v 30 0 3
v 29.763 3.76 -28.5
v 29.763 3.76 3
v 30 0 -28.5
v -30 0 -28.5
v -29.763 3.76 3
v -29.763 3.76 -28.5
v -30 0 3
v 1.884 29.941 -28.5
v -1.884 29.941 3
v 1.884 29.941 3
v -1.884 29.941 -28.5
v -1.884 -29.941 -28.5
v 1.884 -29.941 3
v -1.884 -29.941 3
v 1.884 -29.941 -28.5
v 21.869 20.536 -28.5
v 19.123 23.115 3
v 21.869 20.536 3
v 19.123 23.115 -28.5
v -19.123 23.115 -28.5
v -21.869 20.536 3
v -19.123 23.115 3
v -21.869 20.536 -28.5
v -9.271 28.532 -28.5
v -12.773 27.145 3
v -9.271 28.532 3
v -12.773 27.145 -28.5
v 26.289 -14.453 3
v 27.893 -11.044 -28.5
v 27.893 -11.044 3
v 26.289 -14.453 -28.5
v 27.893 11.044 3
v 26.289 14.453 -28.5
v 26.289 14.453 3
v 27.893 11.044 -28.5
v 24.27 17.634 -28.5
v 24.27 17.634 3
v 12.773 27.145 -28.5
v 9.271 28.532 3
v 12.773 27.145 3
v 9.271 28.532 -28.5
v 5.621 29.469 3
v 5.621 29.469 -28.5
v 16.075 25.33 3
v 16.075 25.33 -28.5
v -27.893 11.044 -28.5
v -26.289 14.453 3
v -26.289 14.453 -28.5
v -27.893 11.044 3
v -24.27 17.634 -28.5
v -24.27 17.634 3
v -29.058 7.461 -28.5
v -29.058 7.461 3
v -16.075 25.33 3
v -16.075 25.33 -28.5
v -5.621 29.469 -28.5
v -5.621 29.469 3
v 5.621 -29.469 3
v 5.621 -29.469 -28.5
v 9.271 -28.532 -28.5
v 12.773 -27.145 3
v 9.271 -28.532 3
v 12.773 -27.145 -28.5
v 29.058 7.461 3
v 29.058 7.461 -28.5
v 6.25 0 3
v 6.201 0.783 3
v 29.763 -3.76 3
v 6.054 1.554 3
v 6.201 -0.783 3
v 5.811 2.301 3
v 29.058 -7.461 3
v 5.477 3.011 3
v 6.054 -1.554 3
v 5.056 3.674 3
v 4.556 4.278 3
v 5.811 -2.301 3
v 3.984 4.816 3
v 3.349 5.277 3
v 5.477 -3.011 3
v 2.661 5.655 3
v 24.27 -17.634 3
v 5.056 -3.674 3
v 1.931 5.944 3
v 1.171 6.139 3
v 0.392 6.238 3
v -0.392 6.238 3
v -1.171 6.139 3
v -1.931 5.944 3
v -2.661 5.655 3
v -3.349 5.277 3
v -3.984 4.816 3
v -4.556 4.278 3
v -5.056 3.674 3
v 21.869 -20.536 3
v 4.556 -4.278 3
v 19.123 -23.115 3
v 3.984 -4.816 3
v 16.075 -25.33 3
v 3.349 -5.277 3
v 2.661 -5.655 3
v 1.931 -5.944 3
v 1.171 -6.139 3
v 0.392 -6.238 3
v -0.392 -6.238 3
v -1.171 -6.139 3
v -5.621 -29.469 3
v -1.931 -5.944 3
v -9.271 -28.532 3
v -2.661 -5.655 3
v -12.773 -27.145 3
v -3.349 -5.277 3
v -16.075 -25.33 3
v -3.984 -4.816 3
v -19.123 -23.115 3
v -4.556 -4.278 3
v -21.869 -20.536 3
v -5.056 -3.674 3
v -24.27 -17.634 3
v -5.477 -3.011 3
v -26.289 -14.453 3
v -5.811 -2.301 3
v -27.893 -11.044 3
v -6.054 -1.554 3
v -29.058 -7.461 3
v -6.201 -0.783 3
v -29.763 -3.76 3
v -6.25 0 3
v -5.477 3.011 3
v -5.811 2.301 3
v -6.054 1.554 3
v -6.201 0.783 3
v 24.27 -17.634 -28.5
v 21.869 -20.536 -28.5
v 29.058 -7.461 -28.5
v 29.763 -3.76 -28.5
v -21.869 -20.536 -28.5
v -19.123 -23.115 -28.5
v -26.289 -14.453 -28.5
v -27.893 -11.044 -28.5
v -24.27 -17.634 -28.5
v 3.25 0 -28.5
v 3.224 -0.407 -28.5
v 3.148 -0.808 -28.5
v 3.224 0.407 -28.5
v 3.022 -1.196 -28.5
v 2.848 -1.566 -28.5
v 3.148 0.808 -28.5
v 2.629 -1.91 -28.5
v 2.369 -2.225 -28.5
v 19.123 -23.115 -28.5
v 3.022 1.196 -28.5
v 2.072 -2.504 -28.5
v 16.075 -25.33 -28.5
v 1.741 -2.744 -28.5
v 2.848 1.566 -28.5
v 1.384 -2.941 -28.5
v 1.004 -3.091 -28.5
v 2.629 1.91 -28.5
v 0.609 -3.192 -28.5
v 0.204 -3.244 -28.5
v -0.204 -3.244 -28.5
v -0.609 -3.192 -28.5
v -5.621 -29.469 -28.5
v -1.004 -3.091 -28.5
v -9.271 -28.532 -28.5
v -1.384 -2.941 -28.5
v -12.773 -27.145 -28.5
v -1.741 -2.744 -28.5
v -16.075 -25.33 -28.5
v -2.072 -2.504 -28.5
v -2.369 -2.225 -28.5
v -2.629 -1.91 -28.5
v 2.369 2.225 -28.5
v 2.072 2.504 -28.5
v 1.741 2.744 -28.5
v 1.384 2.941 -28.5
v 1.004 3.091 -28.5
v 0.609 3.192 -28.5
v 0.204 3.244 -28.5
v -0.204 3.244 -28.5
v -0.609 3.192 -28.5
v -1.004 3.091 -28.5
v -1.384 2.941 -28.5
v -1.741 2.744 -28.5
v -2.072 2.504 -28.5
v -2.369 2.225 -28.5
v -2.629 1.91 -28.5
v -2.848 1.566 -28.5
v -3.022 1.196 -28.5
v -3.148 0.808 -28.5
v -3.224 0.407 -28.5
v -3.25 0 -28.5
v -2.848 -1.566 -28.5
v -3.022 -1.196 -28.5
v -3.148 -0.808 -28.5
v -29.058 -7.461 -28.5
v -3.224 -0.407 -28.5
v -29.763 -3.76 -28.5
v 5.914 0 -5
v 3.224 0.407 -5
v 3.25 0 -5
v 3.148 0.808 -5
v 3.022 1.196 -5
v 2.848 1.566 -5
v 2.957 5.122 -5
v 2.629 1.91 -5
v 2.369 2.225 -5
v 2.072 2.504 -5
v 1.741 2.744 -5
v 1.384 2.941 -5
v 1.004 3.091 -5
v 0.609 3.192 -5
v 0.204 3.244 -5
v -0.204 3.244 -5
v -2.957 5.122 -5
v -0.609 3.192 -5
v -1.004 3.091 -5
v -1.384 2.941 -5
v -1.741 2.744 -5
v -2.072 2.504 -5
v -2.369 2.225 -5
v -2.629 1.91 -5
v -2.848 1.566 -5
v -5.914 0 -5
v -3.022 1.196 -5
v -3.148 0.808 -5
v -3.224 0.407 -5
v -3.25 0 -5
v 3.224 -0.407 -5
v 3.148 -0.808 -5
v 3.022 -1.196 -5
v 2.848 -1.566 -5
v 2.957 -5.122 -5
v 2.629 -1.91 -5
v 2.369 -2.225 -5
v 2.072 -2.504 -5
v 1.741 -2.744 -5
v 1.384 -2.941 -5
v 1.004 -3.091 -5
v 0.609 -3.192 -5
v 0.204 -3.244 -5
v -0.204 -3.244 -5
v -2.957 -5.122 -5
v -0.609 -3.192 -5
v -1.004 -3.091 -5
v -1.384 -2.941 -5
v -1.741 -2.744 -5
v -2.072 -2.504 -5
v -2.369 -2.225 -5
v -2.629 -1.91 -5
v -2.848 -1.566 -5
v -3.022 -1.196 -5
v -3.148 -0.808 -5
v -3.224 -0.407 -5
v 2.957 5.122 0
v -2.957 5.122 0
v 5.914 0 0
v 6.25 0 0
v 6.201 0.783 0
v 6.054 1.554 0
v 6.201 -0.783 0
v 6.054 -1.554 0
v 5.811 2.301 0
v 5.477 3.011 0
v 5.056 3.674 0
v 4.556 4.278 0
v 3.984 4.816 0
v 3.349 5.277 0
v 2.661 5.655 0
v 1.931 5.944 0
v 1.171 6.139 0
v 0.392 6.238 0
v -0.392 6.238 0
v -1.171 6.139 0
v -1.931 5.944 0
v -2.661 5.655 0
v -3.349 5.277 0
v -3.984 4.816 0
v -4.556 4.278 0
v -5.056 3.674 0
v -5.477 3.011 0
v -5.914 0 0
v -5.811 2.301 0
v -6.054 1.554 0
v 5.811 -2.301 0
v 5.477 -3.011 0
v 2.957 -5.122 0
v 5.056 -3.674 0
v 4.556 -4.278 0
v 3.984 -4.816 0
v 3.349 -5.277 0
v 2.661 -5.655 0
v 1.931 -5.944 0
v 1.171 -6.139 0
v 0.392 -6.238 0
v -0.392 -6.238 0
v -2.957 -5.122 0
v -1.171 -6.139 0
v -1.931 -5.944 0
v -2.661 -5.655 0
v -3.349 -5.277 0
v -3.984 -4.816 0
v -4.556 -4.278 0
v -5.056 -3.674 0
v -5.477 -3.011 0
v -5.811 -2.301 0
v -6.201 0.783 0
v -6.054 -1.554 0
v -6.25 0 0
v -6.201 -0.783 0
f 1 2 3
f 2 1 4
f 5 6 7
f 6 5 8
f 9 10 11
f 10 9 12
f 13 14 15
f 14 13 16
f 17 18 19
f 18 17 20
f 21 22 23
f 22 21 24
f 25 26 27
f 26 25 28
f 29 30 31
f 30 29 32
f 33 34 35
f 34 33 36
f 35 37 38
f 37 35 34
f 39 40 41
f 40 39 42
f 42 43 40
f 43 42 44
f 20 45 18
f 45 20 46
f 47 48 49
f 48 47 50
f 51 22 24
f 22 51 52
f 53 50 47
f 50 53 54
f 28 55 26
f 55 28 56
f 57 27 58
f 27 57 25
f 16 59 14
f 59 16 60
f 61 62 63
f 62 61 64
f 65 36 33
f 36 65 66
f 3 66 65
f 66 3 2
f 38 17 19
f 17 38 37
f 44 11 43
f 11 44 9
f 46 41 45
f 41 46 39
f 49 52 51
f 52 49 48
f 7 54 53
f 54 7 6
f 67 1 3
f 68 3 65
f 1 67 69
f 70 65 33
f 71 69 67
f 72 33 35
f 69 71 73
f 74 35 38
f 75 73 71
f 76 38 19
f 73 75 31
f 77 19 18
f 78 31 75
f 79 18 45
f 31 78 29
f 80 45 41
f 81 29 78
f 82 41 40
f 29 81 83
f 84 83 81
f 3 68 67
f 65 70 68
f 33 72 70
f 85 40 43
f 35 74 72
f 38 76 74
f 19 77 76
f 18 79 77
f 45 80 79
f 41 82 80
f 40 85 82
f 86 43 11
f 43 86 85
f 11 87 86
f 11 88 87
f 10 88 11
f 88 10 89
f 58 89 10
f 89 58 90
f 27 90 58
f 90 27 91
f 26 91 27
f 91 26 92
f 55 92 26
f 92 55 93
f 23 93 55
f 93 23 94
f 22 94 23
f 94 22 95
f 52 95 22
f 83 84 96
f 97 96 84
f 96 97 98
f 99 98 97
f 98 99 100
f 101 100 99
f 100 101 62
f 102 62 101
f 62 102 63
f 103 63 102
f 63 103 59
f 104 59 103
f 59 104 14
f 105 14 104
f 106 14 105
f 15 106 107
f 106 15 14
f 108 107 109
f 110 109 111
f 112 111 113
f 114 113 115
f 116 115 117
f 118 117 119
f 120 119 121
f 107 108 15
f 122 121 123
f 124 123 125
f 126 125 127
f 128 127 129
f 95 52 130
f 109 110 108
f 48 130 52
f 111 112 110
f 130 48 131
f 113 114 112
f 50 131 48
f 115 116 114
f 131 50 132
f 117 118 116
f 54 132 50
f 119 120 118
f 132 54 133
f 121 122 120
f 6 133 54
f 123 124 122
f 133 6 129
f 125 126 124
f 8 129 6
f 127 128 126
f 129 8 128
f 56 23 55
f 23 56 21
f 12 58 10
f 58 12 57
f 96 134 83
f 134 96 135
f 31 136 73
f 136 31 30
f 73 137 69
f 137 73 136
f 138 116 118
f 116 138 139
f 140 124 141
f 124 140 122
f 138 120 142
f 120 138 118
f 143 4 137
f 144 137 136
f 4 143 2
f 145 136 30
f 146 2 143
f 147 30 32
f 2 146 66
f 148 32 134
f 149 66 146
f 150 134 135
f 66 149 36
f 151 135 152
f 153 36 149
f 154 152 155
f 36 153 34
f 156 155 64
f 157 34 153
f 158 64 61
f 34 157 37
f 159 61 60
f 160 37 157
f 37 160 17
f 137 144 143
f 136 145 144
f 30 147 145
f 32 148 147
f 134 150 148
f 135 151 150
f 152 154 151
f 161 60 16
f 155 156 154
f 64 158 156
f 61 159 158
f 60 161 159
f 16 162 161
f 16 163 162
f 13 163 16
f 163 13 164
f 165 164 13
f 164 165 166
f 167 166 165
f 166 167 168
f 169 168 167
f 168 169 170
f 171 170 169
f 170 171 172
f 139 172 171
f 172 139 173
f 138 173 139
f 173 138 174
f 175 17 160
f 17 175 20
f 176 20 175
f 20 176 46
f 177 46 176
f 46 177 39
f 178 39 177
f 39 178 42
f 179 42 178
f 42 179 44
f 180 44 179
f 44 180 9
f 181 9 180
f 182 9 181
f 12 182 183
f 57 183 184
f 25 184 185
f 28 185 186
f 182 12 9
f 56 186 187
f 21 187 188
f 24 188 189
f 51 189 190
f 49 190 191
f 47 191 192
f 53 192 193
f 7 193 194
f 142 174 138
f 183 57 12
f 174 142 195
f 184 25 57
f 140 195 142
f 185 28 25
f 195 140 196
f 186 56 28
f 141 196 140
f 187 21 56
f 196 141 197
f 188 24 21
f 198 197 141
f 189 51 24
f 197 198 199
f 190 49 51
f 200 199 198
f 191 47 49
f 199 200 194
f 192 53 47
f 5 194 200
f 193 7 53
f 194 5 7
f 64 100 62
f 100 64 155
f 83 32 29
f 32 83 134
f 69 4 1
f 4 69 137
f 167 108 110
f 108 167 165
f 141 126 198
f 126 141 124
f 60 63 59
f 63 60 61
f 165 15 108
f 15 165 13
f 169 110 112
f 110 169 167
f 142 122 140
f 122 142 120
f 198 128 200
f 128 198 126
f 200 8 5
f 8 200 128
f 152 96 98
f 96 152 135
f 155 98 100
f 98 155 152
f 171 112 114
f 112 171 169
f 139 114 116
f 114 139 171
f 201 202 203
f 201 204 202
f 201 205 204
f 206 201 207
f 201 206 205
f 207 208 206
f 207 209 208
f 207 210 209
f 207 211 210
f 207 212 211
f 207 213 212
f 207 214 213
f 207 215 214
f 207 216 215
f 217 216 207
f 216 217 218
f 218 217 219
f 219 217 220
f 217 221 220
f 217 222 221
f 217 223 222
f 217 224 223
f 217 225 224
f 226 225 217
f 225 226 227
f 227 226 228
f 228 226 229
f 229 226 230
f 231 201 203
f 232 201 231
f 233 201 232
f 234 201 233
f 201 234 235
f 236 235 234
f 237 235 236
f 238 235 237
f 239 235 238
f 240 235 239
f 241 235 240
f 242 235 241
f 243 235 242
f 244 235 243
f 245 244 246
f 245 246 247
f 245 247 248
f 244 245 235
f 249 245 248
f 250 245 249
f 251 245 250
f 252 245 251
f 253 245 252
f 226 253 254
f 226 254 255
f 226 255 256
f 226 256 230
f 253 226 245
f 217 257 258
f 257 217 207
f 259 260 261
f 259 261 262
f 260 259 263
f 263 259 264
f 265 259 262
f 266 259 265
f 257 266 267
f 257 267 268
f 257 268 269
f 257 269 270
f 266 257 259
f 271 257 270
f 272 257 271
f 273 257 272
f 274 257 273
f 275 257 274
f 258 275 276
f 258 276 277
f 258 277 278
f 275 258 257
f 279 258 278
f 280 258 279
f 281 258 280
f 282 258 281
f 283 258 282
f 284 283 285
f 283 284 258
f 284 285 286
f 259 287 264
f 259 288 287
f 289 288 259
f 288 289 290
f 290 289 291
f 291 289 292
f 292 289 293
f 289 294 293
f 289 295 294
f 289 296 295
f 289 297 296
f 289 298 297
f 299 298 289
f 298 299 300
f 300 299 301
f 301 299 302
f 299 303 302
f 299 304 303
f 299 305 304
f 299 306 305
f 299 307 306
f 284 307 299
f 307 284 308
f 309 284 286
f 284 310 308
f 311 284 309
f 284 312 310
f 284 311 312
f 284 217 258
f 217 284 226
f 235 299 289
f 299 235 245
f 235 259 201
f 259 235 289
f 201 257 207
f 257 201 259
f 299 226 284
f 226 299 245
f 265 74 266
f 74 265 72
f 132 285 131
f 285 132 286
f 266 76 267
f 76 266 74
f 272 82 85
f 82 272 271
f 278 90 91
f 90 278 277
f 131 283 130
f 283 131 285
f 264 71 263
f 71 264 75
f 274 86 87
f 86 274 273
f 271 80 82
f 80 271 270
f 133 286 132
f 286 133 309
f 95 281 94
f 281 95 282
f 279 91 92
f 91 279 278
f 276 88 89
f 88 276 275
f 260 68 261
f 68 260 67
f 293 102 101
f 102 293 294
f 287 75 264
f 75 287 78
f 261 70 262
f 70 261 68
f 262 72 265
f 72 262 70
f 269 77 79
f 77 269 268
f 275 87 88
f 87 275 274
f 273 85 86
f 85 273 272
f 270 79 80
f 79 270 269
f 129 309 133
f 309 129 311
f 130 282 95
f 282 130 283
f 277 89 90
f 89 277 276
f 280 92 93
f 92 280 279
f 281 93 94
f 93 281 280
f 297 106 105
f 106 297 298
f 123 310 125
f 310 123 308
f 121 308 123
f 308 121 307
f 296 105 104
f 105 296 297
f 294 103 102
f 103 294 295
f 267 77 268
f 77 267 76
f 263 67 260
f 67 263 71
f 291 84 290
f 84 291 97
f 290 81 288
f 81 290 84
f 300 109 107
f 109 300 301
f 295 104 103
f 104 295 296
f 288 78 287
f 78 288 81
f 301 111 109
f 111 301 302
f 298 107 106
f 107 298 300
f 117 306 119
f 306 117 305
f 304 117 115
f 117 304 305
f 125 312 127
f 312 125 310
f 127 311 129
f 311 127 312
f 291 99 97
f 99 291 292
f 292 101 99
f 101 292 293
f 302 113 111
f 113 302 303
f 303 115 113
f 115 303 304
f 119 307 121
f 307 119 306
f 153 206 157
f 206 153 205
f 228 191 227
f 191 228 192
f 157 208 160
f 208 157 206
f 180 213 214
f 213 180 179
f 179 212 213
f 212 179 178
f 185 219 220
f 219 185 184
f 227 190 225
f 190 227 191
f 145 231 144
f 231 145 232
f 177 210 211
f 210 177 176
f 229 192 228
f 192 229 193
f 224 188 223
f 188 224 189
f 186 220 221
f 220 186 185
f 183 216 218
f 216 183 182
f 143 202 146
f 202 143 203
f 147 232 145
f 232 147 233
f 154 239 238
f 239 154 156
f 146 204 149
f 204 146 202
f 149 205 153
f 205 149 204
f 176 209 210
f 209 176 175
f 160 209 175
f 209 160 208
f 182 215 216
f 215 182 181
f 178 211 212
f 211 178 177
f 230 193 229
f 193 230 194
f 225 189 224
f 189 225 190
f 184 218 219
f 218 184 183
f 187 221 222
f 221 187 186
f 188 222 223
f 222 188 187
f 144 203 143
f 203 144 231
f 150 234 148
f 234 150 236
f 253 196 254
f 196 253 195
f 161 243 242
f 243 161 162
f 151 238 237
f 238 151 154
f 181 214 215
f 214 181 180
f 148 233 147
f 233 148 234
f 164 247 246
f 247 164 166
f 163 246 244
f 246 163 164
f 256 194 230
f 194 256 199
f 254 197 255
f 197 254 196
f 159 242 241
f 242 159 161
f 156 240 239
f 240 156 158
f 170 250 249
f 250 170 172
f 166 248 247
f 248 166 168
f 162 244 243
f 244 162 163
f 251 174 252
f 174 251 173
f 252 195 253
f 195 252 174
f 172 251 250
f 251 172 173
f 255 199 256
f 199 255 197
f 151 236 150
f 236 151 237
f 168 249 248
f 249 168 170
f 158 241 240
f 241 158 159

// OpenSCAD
$fn = 50;


difference() {
	union() {
		translate(v = [0, 0, -28.5000000000]) {
			cylinder(h = 31.5000000000, r = 30.0000000000);
		}
		#translate(v = [0, 0, -30.0000000000]) {
			cylinder(h = 30, r = 2.8750000000);
		}
	}
	union() {
		translate(v = [0, 0, 0]) {
			rotate(a = [0, 0, 0]) {
				difference() {
					union() {
						translate(v = [0, 0, -5]) {
							linear_extrude(height = 5) {
								polygon(points = [[5.9142500000, 0.0000000000], [2.9571250000, 5.1218907443], [-2.9571250000, 5.1218907443], [-5.9142500000, 0.0000000000], [-2.9571250000, -5.1218907443], [2.9571250000, -5.1218907443]]);
							}
						}
					}
					union();
				}
			}
		}
		#cylinder(h = 3, r = 6.2500000000);
		#translate(v = [0, 0, -100.0000000000]) {
			cylinder(h = 200, r = 3.2500000000);
		}
	}
}
